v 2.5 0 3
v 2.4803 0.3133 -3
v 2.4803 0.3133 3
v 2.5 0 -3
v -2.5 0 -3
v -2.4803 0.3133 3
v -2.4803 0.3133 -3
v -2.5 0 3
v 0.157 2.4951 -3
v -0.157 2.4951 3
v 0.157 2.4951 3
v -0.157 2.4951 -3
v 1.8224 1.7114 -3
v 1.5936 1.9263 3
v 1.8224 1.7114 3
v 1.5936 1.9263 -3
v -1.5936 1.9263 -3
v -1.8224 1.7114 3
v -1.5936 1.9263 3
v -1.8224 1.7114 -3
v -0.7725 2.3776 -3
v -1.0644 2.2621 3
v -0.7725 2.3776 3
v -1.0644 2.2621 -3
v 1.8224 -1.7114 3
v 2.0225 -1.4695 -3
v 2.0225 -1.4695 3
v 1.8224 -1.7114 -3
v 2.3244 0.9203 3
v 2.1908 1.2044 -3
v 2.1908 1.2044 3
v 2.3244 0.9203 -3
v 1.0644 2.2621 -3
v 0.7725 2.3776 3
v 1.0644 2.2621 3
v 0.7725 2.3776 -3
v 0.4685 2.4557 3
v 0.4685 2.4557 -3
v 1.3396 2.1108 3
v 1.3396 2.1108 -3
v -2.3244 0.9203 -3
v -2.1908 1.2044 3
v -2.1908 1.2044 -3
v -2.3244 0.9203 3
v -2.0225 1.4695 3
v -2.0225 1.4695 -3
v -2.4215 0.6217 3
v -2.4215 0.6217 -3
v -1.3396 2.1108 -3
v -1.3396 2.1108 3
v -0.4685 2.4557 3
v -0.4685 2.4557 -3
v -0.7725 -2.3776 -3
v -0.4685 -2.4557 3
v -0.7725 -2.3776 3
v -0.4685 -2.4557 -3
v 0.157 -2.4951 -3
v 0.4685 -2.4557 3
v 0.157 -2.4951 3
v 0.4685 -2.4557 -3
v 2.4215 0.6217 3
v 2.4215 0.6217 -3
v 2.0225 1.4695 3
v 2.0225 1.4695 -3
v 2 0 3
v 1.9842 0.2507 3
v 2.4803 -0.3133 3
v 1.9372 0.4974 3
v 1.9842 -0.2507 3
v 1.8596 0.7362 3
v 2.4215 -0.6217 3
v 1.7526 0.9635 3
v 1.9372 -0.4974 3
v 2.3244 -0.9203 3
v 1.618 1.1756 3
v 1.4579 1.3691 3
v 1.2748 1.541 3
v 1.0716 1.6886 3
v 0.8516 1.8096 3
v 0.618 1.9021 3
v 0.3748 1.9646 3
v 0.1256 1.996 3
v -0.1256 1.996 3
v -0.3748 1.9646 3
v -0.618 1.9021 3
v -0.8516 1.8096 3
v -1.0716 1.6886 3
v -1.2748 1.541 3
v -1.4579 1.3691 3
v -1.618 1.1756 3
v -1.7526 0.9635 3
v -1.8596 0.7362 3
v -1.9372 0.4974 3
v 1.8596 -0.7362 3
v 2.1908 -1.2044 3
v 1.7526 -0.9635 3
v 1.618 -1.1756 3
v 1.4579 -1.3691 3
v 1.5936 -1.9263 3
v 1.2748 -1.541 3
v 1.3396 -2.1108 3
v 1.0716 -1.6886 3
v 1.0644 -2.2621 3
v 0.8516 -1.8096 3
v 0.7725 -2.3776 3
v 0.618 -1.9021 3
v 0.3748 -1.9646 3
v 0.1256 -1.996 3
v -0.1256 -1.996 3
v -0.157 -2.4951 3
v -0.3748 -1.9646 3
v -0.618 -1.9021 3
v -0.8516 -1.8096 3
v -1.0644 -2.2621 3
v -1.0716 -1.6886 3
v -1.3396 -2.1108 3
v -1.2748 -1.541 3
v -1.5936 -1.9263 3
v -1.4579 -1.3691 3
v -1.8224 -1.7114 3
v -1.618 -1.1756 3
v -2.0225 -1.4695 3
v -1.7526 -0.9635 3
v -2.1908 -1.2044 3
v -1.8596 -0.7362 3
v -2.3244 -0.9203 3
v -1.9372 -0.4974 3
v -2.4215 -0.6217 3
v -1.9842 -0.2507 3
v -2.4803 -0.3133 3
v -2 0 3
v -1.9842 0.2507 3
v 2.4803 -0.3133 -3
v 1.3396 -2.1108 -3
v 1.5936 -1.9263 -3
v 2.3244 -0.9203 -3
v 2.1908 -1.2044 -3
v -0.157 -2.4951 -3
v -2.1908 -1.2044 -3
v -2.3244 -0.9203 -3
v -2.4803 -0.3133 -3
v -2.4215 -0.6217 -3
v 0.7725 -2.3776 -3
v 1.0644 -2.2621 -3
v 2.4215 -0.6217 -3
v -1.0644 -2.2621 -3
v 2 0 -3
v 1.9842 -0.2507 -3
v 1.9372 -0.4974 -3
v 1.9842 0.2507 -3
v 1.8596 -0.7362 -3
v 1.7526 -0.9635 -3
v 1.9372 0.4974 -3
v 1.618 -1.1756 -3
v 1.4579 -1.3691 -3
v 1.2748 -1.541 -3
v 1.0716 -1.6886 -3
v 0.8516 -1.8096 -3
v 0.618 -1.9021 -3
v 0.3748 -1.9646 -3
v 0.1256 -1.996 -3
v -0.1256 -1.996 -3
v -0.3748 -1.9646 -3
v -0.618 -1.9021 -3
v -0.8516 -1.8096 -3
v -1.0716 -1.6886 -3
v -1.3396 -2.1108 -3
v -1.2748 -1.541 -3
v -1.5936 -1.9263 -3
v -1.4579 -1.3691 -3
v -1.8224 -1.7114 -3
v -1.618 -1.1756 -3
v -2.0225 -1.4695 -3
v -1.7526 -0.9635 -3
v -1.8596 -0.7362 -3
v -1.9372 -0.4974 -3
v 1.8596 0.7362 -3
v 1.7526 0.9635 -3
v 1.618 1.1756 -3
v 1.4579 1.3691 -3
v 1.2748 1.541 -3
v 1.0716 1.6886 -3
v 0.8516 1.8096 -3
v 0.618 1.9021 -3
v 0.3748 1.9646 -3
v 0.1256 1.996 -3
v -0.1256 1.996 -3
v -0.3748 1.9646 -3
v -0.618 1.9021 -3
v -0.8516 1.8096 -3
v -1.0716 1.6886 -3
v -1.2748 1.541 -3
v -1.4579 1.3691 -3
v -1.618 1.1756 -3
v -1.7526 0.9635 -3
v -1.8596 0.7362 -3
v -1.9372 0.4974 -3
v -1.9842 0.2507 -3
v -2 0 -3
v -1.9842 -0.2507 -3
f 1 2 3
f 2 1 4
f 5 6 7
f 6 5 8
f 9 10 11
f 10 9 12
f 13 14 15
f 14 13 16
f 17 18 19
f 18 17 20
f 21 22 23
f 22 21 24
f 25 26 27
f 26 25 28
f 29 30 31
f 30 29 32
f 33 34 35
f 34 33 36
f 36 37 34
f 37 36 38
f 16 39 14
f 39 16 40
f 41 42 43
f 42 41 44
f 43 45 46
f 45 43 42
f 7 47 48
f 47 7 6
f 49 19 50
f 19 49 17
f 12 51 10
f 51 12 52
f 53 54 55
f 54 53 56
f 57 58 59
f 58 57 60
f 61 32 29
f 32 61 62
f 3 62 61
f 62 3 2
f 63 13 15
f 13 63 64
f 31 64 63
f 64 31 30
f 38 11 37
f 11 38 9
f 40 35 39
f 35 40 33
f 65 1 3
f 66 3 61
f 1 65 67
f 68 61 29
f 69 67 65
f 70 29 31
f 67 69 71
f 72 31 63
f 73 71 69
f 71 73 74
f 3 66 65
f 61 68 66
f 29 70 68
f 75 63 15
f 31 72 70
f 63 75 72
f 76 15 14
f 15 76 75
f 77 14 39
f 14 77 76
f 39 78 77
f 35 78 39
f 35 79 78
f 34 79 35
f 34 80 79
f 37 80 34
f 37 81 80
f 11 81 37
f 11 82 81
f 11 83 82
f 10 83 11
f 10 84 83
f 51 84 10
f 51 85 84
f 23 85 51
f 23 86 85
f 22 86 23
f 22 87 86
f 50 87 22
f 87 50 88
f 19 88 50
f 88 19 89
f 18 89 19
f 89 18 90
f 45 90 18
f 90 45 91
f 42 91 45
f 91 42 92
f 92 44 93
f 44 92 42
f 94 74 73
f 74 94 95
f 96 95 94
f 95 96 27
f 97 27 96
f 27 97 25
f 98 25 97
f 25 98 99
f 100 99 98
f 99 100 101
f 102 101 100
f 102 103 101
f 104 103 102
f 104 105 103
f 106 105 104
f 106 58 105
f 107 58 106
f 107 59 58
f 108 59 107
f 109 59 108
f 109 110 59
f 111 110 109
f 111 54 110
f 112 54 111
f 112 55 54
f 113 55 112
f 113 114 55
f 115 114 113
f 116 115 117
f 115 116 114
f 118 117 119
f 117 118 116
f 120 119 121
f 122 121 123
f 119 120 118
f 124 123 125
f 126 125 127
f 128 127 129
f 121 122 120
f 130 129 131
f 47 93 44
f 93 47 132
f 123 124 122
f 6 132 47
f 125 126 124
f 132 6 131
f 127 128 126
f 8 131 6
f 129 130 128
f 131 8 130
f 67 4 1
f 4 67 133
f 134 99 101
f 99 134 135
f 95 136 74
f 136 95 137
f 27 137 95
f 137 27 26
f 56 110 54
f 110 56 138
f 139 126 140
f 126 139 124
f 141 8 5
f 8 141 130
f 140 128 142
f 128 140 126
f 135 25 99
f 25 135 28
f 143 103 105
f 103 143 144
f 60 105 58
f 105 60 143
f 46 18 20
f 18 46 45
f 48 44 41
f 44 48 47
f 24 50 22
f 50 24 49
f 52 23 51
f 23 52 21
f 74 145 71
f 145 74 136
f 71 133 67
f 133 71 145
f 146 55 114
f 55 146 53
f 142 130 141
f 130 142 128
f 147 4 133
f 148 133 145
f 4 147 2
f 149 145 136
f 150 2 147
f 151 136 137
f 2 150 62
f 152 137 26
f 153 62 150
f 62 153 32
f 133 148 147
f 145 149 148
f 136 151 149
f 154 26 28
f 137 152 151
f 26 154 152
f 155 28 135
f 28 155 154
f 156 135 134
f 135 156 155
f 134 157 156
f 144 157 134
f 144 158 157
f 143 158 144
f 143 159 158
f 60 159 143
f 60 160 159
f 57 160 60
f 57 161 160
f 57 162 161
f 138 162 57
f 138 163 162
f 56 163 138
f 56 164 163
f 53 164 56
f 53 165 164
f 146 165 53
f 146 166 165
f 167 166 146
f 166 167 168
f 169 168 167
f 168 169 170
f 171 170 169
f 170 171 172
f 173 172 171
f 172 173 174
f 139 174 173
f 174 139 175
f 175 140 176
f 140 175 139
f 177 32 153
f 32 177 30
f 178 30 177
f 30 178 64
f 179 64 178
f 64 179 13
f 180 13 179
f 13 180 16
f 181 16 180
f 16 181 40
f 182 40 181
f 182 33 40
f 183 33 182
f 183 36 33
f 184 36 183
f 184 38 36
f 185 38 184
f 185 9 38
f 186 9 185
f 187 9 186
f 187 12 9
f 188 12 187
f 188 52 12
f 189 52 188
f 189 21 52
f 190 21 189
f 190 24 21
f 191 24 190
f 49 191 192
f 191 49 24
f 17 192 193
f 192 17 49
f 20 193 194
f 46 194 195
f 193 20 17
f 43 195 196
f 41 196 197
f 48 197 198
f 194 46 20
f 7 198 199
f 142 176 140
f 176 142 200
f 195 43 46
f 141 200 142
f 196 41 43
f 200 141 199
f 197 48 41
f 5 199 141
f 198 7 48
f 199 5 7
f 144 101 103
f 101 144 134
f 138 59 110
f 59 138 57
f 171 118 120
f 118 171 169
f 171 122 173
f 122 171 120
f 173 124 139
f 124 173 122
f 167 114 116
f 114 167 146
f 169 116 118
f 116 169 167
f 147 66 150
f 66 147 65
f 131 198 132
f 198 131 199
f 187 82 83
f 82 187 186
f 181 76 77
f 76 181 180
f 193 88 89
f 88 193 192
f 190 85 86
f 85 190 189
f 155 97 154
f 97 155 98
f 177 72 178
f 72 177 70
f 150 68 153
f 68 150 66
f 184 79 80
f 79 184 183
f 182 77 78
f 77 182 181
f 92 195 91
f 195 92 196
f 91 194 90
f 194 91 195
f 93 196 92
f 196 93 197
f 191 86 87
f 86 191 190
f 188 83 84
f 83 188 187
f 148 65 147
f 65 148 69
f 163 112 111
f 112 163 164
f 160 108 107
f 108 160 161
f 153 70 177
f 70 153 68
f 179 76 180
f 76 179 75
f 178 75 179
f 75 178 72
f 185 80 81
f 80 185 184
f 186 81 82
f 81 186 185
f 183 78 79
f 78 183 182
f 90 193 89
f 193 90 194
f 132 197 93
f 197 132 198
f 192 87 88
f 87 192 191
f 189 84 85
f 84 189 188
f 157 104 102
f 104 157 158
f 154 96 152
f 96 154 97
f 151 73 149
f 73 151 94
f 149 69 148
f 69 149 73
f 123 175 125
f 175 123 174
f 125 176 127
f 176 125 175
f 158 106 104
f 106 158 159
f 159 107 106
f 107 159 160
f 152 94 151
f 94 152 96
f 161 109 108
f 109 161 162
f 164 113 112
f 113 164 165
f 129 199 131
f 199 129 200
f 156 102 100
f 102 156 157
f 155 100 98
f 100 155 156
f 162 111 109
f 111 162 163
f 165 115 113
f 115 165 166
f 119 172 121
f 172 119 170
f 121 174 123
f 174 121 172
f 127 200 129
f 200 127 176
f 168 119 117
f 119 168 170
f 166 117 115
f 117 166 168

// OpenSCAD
$fn = 50;


difference() {
	union() {
		translate(v = [0, 0, -3.0000000000]) {
			cylinder(h = 6, r = 2.5000000000);
		}
	}
	union() {
		translate(v = [0, 0, -100.0000000000]) {
			cylinder(h = 200, r = 2.0000000000);
		}
	}
}
